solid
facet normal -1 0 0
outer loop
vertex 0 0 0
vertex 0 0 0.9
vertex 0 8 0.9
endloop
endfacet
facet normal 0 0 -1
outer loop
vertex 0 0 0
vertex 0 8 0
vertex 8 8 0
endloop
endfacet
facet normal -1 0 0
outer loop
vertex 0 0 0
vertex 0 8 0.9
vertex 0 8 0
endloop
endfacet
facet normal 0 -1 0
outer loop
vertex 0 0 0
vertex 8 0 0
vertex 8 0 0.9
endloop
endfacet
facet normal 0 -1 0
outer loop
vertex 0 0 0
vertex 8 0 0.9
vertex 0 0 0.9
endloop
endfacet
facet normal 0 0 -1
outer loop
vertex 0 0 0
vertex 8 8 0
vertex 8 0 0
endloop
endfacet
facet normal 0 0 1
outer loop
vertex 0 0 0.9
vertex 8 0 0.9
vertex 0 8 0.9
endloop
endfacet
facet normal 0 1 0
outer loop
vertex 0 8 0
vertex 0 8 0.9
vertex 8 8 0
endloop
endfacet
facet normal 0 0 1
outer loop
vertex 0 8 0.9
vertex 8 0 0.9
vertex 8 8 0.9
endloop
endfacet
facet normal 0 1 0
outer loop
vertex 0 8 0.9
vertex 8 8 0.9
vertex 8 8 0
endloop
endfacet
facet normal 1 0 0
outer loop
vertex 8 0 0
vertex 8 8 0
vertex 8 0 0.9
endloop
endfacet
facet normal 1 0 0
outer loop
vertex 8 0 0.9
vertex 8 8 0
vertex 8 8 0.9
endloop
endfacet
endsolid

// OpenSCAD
/* Warning, this is a very basic generator with a lot of approximation 
input data : [VQFN, Q9A, 8x8x0.9mm, 68, , A, C04-01127A]
generated by com.zoubworld.electronics.cad.model3d.Basic
Date : Sun Feb 15 10:50:49 CET 2026
*/

//body
color("black")
translate([0,0,0])
cube([8.0,8.0,0.9], center=false);
